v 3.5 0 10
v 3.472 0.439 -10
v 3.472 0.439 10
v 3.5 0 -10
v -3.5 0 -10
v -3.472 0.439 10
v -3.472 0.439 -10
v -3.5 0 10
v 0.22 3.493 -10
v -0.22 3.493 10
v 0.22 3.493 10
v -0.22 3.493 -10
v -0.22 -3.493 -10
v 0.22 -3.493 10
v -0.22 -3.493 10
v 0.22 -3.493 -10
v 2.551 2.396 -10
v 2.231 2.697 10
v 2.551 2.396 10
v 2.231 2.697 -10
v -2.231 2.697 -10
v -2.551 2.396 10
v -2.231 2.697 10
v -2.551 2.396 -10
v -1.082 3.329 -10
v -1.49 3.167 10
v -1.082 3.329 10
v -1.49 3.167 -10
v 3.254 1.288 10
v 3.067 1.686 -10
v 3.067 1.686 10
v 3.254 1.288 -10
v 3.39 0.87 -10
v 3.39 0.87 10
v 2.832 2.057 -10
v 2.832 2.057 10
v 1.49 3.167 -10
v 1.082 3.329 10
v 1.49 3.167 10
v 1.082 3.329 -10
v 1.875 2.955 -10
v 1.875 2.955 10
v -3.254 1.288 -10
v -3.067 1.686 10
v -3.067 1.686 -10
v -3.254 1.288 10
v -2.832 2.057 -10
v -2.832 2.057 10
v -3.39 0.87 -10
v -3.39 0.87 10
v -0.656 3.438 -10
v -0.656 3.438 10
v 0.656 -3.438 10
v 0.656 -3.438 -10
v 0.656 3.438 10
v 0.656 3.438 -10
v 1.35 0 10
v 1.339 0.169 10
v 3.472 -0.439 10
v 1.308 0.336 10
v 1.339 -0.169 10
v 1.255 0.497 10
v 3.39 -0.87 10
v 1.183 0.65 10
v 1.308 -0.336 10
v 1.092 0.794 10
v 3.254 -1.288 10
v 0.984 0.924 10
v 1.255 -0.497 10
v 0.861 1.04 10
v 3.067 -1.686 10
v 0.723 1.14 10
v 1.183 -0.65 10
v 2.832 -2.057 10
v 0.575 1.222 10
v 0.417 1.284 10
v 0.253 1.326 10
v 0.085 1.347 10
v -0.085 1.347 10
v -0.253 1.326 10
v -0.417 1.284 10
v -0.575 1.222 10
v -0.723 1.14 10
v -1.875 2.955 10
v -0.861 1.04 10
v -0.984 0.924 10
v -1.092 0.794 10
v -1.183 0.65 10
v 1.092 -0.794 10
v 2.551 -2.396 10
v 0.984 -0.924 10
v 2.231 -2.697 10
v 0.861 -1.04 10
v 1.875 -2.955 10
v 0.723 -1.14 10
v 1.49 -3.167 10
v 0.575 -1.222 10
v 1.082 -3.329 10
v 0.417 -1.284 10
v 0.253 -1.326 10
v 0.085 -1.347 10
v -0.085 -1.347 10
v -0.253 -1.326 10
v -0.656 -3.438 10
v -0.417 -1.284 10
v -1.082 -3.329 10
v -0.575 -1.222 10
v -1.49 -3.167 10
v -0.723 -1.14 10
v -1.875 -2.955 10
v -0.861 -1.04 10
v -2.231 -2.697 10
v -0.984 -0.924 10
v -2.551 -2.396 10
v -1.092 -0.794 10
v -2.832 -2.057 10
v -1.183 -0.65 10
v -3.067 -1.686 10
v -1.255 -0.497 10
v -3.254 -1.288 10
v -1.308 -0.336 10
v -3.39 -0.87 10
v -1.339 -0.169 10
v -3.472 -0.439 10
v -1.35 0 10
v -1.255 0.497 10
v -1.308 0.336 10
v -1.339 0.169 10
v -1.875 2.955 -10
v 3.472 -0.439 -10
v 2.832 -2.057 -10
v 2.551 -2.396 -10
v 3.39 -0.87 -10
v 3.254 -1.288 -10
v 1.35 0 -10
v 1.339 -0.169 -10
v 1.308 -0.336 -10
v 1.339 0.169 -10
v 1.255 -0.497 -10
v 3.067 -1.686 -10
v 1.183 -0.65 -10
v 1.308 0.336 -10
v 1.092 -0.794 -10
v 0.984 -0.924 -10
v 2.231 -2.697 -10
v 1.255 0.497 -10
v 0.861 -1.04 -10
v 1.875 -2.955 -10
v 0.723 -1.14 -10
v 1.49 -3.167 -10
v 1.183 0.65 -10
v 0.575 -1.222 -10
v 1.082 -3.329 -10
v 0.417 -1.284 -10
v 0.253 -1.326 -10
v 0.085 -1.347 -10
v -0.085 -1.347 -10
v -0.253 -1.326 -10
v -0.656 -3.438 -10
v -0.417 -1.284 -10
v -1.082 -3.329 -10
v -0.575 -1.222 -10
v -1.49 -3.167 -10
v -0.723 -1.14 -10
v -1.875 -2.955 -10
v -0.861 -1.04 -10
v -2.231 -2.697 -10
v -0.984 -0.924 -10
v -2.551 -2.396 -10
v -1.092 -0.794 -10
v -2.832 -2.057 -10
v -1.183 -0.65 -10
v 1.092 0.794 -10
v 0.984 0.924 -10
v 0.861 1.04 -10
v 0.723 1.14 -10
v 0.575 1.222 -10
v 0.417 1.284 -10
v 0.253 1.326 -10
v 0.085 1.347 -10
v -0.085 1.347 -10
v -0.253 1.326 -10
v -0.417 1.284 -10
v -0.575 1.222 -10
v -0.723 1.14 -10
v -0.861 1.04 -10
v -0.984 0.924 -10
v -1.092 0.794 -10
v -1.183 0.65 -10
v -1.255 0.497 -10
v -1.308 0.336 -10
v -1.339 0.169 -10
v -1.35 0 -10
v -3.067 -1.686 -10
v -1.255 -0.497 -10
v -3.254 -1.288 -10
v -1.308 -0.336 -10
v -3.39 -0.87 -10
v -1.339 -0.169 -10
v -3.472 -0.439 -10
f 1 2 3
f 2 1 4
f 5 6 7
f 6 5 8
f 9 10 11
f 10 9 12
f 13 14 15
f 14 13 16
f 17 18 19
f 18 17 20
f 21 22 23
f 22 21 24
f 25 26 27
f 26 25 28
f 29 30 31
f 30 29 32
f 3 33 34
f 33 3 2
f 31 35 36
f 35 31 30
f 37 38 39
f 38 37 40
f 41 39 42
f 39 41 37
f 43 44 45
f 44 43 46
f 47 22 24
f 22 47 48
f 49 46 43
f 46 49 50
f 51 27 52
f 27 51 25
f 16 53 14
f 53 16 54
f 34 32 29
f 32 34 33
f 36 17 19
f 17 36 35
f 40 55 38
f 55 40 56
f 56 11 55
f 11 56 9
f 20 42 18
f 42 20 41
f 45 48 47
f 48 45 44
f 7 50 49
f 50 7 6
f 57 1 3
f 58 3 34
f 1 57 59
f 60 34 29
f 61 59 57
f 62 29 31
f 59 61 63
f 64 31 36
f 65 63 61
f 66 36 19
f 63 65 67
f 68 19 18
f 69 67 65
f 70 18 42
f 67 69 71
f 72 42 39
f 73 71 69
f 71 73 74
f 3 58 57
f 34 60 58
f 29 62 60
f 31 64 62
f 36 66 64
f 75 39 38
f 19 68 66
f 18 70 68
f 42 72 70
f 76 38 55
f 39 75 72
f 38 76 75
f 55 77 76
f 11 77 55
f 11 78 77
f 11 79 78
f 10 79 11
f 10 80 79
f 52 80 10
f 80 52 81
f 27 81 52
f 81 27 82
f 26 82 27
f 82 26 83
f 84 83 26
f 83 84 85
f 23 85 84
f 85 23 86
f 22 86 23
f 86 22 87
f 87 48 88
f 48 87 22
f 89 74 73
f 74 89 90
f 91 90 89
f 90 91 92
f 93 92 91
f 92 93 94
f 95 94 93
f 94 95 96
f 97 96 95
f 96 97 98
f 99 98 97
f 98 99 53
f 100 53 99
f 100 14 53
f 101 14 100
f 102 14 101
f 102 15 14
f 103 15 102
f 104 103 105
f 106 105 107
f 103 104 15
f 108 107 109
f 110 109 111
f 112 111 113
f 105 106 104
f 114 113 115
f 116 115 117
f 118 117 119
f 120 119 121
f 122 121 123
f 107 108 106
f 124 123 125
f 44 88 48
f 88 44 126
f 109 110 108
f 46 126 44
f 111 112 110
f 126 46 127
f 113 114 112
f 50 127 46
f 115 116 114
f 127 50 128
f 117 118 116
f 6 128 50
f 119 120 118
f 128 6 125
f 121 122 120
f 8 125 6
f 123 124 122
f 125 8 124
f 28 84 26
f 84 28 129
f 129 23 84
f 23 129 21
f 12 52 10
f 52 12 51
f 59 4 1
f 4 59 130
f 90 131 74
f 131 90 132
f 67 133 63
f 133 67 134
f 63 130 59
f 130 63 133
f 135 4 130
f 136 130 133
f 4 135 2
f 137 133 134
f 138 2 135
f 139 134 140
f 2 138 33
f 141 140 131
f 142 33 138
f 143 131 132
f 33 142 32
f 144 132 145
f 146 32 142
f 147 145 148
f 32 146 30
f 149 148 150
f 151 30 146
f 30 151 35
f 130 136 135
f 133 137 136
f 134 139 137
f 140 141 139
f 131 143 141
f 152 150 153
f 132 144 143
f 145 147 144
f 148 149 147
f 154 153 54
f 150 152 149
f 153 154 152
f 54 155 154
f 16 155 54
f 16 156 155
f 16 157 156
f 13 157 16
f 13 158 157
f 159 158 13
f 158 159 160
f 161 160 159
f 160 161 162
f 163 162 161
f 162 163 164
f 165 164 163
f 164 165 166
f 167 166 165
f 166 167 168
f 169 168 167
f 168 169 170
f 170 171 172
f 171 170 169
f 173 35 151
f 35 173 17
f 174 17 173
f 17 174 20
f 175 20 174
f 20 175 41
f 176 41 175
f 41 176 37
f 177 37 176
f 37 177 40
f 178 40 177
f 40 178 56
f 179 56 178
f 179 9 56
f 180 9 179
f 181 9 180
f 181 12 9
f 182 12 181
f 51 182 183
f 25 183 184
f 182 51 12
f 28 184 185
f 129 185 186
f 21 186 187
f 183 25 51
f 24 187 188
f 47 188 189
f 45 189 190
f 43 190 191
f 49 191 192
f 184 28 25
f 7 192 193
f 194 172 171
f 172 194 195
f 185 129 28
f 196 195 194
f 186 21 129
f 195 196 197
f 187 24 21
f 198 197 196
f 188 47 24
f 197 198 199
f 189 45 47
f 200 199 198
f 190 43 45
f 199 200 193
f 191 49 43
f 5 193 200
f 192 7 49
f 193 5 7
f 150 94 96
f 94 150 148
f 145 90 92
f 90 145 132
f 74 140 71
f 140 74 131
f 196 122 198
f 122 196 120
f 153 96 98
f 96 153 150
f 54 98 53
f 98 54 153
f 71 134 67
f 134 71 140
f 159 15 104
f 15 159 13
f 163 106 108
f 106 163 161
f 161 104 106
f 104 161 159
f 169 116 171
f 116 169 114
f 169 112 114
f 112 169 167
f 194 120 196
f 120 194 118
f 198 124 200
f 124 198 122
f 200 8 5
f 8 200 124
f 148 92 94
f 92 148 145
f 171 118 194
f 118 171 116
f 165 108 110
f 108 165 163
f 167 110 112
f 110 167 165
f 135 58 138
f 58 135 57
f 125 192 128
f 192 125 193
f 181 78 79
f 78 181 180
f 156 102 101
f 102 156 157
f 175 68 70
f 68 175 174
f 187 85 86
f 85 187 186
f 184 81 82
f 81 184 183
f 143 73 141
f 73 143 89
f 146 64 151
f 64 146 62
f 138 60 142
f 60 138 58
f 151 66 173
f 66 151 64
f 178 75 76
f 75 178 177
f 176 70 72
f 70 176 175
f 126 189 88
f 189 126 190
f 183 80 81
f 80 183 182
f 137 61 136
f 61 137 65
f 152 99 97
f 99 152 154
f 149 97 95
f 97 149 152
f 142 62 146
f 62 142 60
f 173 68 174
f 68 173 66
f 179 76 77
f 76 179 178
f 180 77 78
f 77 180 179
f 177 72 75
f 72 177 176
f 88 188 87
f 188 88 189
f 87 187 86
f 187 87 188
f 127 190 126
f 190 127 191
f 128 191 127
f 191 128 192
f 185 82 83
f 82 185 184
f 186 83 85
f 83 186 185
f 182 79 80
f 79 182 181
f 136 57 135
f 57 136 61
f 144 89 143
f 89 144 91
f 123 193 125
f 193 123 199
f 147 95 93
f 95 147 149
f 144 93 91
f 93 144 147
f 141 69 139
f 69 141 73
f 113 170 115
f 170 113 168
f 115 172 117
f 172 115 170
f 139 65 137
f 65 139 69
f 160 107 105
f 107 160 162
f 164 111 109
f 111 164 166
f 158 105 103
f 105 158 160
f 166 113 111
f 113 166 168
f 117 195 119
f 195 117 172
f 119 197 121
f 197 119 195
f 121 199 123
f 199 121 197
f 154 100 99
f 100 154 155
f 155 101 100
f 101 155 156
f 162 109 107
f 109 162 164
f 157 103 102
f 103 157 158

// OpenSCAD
$fn = 50;


difference() {
	union() {
		translate(v = [0, 0, -10.0000000000]) {
			cylinder(h = 20, r = 3.5000000000);
		}
	}
	union() {
		translate(v = [0, 0, -100.0000000000]) {
			cylinder(h = 200, r = 1.3500000000);
		}
	}
}
